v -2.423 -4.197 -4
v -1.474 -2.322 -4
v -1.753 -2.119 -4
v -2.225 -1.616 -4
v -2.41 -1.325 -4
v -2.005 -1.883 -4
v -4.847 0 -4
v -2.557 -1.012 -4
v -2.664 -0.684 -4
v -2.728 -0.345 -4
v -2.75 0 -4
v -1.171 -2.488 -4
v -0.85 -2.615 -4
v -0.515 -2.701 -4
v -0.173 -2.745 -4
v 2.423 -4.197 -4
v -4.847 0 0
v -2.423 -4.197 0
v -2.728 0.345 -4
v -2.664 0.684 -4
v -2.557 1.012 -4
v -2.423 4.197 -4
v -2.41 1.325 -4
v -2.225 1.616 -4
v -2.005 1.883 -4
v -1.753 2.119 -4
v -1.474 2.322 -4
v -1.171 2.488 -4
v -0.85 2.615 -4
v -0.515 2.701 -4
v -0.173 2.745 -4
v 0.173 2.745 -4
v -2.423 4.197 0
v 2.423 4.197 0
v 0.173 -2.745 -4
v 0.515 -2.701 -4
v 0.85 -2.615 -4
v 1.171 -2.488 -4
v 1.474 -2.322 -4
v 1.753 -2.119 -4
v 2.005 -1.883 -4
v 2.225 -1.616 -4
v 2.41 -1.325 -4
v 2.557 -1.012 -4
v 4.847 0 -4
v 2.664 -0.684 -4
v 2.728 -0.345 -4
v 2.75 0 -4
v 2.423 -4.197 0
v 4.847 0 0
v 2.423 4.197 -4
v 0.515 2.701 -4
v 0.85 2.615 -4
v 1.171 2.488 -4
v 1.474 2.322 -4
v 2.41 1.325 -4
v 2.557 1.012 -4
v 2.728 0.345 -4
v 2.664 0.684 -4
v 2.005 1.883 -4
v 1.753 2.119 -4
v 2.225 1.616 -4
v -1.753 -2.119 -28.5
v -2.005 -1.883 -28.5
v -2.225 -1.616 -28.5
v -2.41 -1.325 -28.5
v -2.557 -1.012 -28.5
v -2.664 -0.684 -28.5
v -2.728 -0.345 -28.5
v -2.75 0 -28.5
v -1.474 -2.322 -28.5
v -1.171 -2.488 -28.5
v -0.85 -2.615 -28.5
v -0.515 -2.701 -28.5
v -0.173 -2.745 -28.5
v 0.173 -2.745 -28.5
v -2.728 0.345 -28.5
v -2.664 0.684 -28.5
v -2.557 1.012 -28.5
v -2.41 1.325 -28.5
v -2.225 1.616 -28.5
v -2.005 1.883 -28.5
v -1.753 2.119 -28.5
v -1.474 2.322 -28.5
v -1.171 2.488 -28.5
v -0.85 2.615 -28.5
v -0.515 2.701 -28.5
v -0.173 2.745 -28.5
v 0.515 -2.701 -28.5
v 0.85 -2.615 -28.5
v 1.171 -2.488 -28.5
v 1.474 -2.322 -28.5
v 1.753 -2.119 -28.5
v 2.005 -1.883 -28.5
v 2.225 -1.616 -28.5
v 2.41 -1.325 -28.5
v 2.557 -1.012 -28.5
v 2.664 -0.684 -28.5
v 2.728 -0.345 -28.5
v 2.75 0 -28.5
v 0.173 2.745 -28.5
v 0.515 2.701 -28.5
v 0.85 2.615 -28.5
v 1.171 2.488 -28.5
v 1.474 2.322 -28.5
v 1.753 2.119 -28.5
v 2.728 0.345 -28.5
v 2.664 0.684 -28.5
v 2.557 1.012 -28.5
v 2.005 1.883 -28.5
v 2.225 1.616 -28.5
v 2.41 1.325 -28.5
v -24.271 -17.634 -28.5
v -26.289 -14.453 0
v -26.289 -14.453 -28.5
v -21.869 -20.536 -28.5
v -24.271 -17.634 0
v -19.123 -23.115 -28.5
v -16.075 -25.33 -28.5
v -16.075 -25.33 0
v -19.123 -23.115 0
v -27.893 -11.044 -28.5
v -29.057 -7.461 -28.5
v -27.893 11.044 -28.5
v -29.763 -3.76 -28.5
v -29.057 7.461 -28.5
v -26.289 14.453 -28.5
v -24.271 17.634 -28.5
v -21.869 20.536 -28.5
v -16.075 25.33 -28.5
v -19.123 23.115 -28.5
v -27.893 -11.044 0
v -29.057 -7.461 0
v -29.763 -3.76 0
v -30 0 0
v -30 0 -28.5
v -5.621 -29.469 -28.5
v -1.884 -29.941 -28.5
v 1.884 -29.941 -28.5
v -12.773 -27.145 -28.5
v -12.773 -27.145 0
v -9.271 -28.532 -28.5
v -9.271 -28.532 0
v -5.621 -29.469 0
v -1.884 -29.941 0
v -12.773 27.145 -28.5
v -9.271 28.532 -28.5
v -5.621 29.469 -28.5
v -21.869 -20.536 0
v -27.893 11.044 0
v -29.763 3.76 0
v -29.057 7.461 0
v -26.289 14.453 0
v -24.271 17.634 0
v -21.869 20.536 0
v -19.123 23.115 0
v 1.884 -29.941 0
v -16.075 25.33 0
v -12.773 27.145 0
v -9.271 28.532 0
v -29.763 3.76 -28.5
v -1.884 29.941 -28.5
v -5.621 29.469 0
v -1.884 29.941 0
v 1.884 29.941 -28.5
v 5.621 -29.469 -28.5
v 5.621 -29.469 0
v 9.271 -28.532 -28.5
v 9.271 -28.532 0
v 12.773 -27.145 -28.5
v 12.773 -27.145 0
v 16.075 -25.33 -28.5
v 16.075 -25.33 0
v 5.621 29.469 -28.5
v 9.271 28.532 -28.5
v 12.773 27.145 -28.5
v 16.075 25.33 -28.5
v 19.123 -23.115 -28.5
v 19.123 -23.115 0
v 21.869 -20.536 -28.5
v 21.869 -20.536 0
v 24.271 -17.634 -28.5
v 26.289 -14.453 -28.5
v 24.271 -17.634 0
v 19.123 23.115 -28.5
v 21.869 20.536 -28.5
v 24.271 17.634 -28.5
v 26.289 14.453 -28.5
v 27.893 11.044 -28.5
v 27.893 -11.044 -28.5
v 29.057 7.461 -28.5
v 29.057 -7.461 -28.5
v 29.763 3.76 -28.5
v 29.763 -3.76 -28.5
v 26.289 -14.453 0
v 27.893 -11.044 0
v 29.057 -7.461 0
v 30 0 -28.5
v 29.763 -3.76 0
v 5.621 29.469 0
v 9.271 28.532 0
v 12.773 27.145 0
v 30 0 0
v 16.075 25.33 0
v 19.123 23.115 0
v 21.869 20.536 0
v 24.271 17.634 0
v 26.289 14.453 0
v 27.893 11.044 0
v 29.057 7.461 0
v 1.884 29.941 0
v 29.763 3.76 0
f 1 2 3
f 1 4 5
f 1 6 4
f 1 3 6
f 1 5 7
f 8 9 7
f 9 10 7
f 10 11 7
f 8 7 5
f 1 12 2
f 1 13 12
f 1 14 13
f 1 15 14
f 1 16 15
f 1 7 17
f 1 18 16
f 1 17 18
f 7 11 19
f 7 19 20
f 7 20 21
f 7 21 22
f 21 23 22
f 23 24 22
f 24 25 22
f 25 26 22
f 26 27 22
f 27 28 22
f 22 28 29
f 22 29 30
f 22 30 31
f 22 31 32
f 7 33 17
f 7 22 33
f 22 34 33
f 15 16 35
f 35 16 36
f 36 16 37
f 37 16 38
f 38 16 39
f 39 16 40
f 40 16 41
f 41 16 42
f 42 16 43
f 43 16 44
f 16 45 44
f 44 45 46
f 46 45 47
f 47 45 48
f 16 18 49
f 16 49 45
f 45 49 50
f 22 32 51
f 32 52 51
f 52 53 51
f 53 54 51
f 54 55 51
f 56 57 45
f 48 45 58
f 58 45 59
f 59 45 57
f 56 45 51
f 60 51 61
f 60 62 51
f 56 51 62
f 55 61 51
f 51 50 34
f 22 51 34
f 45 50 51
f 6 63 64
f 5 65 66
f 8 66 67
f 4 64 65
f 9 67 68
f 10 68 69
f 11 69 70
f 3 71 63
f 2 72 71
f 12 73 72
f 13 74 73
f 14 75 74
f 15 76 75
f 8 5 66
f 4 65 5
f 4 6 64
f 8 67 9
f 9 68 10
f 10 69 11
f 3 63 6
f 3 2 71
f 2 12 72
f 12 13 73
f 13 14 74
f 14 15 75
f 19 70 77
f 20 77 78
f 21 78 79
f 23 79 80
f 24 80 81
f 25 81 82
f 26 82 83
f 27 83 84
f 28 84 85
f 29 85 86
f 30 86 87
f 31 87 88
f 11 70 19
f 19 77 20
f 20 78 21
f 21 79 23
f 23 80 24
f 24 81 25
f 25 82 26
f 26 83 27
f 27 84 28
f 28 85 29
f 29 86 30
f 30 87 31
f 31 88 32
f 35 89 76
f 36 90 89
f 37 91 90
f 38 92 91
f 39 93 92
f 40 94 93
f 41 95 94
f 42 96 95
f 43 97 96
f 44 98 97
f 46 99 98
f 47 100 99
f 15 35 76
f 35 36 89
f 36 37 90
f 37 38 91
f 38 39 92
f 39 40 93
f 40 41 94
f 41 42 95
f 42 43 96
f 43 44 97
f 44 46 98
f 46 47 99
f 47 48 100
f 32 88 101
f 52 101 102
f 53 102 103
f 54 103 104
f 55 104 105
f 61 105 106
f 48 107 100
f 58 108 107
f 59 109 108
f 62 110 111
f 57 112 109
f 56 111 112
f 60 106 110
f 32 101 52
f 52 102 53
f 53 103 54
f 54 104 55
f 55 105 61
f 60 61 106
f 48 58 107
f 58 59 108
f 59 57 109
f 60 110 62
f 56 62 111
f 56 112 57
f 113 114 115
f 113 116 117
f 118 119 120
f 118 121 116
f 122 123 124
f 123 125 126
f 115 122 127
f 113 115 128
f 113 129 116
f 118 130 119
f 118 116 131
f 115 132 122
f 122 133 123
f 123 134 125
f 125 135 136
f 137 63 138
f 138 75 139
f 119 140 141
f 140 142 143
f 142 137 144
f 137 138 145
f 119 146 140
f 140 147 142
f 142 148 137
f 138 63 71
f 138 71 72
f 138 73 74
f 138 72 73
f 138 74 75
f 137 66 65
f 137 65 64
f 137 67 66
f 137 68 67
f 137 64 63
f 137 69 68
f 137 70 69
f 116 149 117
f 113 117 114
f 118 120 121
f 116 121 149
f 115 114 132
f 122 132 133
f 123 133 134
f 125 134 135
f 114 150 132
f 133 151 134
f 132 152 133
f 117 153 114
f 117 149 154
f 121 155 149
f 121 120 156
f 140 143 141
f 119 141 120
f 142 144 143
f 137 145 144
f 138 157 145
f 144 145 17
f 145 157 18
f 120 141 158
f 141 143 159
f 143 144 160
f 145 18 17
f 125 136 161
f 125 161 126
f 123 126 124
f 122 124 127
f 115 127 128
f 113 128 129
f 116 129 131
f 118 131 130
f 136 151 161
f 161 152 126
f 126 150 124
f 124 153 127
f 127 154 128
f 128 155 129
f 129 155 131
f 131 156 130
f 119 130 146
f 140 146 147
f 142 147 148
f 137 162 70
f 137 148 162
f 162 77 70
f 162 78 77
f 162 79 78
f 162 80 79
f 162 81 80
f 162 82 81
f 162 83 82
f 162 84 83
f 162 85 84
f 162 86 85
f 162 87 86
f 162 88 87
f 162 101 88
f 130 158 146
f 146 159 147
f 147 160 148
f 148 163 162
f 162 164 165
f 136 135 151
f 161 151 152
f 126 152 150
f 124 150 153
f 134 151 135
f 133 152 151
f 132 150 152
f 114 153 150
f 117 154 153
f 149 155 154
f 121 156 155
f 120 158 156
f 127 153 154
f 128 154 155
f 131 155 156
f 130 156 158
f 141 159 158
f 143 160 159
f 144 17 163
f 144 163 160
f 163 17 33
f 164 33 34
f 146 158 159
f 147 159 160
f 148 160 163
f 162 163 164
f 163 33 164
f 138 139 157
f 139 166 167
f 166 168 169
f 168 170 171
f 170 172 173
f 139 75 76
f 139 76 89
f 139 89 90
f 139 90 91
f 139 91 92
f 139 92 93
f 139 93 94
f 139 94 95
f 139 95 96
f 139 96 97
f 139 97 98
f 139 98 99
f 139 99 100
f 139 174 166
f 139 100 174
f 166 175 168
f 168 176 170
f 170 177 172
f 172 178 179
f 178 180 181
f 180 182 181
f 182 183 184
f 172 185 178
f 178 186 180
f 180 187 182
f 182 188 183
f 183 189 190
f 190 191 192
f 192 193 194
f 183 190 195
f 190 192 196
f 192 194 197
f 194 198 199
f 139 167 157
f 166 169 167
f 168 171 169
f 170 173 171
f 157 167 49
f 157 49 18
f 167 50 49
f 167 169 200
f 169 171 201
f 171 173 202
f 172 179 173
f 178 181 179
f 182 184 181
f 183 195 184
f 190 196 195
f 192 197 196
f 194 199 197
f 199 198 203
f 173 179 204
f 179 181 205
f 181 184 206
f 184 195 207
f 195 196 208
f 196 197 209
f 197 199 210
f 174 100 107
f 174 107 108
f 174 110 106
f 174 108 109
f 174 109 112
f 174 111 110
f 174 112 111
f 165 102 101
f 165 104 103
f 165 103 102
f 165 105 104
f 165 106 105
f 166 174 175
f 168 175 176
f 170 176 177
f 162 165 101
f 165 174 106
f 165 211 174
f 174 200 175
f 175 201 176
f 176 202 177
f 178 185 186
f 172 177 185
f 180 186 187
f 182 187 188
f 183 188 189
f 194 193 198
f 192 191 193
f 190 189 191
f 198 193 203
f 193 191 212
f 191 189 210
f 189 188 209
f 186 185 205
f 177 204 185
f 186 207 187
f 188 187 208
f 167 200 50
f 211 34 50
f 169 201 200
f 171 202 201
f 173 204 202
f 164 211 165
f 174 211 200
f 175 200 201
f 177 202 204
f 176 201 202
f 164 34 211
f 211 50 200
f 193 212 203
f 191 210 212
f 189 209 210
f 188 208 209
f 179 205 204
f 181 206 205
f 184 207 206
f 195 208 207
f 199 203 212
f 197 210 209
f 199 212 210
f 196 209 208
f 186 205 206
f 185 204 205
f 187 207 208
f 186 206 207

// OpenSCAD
$fn = 50;


difference() {
	union() {
		translate(v = [0, 0, -28.5000000000]) {
			cylinder(h = 28.5000000000, r = 30.0000000000);
		}
	}
	union() {
		translate(v = [0, 0, 0]) {
			rotate(a = [0, 0, 0]) {
				difference() {
					union() {
						translate(v = [0, 0, -4]) {
							linear_extrude(height = 4) {
								polygon(points = [[4.8468000000, 0.0000000000], [2.4234000000, 4.1974519271], [-2.4234000000, 4.1974519271], [-4.8468000000, 0.0000000000], [-2.4234000000, -4.1974519271], [2.4234000000, -4.1974519271]]);
							}
						}
					}
					union();
				}
			}
		}
		#translate(v = [0, 0, -100.0000000000]) {
			cylinder(h = 200, r = 2.7500000000);
		}
	}
}
